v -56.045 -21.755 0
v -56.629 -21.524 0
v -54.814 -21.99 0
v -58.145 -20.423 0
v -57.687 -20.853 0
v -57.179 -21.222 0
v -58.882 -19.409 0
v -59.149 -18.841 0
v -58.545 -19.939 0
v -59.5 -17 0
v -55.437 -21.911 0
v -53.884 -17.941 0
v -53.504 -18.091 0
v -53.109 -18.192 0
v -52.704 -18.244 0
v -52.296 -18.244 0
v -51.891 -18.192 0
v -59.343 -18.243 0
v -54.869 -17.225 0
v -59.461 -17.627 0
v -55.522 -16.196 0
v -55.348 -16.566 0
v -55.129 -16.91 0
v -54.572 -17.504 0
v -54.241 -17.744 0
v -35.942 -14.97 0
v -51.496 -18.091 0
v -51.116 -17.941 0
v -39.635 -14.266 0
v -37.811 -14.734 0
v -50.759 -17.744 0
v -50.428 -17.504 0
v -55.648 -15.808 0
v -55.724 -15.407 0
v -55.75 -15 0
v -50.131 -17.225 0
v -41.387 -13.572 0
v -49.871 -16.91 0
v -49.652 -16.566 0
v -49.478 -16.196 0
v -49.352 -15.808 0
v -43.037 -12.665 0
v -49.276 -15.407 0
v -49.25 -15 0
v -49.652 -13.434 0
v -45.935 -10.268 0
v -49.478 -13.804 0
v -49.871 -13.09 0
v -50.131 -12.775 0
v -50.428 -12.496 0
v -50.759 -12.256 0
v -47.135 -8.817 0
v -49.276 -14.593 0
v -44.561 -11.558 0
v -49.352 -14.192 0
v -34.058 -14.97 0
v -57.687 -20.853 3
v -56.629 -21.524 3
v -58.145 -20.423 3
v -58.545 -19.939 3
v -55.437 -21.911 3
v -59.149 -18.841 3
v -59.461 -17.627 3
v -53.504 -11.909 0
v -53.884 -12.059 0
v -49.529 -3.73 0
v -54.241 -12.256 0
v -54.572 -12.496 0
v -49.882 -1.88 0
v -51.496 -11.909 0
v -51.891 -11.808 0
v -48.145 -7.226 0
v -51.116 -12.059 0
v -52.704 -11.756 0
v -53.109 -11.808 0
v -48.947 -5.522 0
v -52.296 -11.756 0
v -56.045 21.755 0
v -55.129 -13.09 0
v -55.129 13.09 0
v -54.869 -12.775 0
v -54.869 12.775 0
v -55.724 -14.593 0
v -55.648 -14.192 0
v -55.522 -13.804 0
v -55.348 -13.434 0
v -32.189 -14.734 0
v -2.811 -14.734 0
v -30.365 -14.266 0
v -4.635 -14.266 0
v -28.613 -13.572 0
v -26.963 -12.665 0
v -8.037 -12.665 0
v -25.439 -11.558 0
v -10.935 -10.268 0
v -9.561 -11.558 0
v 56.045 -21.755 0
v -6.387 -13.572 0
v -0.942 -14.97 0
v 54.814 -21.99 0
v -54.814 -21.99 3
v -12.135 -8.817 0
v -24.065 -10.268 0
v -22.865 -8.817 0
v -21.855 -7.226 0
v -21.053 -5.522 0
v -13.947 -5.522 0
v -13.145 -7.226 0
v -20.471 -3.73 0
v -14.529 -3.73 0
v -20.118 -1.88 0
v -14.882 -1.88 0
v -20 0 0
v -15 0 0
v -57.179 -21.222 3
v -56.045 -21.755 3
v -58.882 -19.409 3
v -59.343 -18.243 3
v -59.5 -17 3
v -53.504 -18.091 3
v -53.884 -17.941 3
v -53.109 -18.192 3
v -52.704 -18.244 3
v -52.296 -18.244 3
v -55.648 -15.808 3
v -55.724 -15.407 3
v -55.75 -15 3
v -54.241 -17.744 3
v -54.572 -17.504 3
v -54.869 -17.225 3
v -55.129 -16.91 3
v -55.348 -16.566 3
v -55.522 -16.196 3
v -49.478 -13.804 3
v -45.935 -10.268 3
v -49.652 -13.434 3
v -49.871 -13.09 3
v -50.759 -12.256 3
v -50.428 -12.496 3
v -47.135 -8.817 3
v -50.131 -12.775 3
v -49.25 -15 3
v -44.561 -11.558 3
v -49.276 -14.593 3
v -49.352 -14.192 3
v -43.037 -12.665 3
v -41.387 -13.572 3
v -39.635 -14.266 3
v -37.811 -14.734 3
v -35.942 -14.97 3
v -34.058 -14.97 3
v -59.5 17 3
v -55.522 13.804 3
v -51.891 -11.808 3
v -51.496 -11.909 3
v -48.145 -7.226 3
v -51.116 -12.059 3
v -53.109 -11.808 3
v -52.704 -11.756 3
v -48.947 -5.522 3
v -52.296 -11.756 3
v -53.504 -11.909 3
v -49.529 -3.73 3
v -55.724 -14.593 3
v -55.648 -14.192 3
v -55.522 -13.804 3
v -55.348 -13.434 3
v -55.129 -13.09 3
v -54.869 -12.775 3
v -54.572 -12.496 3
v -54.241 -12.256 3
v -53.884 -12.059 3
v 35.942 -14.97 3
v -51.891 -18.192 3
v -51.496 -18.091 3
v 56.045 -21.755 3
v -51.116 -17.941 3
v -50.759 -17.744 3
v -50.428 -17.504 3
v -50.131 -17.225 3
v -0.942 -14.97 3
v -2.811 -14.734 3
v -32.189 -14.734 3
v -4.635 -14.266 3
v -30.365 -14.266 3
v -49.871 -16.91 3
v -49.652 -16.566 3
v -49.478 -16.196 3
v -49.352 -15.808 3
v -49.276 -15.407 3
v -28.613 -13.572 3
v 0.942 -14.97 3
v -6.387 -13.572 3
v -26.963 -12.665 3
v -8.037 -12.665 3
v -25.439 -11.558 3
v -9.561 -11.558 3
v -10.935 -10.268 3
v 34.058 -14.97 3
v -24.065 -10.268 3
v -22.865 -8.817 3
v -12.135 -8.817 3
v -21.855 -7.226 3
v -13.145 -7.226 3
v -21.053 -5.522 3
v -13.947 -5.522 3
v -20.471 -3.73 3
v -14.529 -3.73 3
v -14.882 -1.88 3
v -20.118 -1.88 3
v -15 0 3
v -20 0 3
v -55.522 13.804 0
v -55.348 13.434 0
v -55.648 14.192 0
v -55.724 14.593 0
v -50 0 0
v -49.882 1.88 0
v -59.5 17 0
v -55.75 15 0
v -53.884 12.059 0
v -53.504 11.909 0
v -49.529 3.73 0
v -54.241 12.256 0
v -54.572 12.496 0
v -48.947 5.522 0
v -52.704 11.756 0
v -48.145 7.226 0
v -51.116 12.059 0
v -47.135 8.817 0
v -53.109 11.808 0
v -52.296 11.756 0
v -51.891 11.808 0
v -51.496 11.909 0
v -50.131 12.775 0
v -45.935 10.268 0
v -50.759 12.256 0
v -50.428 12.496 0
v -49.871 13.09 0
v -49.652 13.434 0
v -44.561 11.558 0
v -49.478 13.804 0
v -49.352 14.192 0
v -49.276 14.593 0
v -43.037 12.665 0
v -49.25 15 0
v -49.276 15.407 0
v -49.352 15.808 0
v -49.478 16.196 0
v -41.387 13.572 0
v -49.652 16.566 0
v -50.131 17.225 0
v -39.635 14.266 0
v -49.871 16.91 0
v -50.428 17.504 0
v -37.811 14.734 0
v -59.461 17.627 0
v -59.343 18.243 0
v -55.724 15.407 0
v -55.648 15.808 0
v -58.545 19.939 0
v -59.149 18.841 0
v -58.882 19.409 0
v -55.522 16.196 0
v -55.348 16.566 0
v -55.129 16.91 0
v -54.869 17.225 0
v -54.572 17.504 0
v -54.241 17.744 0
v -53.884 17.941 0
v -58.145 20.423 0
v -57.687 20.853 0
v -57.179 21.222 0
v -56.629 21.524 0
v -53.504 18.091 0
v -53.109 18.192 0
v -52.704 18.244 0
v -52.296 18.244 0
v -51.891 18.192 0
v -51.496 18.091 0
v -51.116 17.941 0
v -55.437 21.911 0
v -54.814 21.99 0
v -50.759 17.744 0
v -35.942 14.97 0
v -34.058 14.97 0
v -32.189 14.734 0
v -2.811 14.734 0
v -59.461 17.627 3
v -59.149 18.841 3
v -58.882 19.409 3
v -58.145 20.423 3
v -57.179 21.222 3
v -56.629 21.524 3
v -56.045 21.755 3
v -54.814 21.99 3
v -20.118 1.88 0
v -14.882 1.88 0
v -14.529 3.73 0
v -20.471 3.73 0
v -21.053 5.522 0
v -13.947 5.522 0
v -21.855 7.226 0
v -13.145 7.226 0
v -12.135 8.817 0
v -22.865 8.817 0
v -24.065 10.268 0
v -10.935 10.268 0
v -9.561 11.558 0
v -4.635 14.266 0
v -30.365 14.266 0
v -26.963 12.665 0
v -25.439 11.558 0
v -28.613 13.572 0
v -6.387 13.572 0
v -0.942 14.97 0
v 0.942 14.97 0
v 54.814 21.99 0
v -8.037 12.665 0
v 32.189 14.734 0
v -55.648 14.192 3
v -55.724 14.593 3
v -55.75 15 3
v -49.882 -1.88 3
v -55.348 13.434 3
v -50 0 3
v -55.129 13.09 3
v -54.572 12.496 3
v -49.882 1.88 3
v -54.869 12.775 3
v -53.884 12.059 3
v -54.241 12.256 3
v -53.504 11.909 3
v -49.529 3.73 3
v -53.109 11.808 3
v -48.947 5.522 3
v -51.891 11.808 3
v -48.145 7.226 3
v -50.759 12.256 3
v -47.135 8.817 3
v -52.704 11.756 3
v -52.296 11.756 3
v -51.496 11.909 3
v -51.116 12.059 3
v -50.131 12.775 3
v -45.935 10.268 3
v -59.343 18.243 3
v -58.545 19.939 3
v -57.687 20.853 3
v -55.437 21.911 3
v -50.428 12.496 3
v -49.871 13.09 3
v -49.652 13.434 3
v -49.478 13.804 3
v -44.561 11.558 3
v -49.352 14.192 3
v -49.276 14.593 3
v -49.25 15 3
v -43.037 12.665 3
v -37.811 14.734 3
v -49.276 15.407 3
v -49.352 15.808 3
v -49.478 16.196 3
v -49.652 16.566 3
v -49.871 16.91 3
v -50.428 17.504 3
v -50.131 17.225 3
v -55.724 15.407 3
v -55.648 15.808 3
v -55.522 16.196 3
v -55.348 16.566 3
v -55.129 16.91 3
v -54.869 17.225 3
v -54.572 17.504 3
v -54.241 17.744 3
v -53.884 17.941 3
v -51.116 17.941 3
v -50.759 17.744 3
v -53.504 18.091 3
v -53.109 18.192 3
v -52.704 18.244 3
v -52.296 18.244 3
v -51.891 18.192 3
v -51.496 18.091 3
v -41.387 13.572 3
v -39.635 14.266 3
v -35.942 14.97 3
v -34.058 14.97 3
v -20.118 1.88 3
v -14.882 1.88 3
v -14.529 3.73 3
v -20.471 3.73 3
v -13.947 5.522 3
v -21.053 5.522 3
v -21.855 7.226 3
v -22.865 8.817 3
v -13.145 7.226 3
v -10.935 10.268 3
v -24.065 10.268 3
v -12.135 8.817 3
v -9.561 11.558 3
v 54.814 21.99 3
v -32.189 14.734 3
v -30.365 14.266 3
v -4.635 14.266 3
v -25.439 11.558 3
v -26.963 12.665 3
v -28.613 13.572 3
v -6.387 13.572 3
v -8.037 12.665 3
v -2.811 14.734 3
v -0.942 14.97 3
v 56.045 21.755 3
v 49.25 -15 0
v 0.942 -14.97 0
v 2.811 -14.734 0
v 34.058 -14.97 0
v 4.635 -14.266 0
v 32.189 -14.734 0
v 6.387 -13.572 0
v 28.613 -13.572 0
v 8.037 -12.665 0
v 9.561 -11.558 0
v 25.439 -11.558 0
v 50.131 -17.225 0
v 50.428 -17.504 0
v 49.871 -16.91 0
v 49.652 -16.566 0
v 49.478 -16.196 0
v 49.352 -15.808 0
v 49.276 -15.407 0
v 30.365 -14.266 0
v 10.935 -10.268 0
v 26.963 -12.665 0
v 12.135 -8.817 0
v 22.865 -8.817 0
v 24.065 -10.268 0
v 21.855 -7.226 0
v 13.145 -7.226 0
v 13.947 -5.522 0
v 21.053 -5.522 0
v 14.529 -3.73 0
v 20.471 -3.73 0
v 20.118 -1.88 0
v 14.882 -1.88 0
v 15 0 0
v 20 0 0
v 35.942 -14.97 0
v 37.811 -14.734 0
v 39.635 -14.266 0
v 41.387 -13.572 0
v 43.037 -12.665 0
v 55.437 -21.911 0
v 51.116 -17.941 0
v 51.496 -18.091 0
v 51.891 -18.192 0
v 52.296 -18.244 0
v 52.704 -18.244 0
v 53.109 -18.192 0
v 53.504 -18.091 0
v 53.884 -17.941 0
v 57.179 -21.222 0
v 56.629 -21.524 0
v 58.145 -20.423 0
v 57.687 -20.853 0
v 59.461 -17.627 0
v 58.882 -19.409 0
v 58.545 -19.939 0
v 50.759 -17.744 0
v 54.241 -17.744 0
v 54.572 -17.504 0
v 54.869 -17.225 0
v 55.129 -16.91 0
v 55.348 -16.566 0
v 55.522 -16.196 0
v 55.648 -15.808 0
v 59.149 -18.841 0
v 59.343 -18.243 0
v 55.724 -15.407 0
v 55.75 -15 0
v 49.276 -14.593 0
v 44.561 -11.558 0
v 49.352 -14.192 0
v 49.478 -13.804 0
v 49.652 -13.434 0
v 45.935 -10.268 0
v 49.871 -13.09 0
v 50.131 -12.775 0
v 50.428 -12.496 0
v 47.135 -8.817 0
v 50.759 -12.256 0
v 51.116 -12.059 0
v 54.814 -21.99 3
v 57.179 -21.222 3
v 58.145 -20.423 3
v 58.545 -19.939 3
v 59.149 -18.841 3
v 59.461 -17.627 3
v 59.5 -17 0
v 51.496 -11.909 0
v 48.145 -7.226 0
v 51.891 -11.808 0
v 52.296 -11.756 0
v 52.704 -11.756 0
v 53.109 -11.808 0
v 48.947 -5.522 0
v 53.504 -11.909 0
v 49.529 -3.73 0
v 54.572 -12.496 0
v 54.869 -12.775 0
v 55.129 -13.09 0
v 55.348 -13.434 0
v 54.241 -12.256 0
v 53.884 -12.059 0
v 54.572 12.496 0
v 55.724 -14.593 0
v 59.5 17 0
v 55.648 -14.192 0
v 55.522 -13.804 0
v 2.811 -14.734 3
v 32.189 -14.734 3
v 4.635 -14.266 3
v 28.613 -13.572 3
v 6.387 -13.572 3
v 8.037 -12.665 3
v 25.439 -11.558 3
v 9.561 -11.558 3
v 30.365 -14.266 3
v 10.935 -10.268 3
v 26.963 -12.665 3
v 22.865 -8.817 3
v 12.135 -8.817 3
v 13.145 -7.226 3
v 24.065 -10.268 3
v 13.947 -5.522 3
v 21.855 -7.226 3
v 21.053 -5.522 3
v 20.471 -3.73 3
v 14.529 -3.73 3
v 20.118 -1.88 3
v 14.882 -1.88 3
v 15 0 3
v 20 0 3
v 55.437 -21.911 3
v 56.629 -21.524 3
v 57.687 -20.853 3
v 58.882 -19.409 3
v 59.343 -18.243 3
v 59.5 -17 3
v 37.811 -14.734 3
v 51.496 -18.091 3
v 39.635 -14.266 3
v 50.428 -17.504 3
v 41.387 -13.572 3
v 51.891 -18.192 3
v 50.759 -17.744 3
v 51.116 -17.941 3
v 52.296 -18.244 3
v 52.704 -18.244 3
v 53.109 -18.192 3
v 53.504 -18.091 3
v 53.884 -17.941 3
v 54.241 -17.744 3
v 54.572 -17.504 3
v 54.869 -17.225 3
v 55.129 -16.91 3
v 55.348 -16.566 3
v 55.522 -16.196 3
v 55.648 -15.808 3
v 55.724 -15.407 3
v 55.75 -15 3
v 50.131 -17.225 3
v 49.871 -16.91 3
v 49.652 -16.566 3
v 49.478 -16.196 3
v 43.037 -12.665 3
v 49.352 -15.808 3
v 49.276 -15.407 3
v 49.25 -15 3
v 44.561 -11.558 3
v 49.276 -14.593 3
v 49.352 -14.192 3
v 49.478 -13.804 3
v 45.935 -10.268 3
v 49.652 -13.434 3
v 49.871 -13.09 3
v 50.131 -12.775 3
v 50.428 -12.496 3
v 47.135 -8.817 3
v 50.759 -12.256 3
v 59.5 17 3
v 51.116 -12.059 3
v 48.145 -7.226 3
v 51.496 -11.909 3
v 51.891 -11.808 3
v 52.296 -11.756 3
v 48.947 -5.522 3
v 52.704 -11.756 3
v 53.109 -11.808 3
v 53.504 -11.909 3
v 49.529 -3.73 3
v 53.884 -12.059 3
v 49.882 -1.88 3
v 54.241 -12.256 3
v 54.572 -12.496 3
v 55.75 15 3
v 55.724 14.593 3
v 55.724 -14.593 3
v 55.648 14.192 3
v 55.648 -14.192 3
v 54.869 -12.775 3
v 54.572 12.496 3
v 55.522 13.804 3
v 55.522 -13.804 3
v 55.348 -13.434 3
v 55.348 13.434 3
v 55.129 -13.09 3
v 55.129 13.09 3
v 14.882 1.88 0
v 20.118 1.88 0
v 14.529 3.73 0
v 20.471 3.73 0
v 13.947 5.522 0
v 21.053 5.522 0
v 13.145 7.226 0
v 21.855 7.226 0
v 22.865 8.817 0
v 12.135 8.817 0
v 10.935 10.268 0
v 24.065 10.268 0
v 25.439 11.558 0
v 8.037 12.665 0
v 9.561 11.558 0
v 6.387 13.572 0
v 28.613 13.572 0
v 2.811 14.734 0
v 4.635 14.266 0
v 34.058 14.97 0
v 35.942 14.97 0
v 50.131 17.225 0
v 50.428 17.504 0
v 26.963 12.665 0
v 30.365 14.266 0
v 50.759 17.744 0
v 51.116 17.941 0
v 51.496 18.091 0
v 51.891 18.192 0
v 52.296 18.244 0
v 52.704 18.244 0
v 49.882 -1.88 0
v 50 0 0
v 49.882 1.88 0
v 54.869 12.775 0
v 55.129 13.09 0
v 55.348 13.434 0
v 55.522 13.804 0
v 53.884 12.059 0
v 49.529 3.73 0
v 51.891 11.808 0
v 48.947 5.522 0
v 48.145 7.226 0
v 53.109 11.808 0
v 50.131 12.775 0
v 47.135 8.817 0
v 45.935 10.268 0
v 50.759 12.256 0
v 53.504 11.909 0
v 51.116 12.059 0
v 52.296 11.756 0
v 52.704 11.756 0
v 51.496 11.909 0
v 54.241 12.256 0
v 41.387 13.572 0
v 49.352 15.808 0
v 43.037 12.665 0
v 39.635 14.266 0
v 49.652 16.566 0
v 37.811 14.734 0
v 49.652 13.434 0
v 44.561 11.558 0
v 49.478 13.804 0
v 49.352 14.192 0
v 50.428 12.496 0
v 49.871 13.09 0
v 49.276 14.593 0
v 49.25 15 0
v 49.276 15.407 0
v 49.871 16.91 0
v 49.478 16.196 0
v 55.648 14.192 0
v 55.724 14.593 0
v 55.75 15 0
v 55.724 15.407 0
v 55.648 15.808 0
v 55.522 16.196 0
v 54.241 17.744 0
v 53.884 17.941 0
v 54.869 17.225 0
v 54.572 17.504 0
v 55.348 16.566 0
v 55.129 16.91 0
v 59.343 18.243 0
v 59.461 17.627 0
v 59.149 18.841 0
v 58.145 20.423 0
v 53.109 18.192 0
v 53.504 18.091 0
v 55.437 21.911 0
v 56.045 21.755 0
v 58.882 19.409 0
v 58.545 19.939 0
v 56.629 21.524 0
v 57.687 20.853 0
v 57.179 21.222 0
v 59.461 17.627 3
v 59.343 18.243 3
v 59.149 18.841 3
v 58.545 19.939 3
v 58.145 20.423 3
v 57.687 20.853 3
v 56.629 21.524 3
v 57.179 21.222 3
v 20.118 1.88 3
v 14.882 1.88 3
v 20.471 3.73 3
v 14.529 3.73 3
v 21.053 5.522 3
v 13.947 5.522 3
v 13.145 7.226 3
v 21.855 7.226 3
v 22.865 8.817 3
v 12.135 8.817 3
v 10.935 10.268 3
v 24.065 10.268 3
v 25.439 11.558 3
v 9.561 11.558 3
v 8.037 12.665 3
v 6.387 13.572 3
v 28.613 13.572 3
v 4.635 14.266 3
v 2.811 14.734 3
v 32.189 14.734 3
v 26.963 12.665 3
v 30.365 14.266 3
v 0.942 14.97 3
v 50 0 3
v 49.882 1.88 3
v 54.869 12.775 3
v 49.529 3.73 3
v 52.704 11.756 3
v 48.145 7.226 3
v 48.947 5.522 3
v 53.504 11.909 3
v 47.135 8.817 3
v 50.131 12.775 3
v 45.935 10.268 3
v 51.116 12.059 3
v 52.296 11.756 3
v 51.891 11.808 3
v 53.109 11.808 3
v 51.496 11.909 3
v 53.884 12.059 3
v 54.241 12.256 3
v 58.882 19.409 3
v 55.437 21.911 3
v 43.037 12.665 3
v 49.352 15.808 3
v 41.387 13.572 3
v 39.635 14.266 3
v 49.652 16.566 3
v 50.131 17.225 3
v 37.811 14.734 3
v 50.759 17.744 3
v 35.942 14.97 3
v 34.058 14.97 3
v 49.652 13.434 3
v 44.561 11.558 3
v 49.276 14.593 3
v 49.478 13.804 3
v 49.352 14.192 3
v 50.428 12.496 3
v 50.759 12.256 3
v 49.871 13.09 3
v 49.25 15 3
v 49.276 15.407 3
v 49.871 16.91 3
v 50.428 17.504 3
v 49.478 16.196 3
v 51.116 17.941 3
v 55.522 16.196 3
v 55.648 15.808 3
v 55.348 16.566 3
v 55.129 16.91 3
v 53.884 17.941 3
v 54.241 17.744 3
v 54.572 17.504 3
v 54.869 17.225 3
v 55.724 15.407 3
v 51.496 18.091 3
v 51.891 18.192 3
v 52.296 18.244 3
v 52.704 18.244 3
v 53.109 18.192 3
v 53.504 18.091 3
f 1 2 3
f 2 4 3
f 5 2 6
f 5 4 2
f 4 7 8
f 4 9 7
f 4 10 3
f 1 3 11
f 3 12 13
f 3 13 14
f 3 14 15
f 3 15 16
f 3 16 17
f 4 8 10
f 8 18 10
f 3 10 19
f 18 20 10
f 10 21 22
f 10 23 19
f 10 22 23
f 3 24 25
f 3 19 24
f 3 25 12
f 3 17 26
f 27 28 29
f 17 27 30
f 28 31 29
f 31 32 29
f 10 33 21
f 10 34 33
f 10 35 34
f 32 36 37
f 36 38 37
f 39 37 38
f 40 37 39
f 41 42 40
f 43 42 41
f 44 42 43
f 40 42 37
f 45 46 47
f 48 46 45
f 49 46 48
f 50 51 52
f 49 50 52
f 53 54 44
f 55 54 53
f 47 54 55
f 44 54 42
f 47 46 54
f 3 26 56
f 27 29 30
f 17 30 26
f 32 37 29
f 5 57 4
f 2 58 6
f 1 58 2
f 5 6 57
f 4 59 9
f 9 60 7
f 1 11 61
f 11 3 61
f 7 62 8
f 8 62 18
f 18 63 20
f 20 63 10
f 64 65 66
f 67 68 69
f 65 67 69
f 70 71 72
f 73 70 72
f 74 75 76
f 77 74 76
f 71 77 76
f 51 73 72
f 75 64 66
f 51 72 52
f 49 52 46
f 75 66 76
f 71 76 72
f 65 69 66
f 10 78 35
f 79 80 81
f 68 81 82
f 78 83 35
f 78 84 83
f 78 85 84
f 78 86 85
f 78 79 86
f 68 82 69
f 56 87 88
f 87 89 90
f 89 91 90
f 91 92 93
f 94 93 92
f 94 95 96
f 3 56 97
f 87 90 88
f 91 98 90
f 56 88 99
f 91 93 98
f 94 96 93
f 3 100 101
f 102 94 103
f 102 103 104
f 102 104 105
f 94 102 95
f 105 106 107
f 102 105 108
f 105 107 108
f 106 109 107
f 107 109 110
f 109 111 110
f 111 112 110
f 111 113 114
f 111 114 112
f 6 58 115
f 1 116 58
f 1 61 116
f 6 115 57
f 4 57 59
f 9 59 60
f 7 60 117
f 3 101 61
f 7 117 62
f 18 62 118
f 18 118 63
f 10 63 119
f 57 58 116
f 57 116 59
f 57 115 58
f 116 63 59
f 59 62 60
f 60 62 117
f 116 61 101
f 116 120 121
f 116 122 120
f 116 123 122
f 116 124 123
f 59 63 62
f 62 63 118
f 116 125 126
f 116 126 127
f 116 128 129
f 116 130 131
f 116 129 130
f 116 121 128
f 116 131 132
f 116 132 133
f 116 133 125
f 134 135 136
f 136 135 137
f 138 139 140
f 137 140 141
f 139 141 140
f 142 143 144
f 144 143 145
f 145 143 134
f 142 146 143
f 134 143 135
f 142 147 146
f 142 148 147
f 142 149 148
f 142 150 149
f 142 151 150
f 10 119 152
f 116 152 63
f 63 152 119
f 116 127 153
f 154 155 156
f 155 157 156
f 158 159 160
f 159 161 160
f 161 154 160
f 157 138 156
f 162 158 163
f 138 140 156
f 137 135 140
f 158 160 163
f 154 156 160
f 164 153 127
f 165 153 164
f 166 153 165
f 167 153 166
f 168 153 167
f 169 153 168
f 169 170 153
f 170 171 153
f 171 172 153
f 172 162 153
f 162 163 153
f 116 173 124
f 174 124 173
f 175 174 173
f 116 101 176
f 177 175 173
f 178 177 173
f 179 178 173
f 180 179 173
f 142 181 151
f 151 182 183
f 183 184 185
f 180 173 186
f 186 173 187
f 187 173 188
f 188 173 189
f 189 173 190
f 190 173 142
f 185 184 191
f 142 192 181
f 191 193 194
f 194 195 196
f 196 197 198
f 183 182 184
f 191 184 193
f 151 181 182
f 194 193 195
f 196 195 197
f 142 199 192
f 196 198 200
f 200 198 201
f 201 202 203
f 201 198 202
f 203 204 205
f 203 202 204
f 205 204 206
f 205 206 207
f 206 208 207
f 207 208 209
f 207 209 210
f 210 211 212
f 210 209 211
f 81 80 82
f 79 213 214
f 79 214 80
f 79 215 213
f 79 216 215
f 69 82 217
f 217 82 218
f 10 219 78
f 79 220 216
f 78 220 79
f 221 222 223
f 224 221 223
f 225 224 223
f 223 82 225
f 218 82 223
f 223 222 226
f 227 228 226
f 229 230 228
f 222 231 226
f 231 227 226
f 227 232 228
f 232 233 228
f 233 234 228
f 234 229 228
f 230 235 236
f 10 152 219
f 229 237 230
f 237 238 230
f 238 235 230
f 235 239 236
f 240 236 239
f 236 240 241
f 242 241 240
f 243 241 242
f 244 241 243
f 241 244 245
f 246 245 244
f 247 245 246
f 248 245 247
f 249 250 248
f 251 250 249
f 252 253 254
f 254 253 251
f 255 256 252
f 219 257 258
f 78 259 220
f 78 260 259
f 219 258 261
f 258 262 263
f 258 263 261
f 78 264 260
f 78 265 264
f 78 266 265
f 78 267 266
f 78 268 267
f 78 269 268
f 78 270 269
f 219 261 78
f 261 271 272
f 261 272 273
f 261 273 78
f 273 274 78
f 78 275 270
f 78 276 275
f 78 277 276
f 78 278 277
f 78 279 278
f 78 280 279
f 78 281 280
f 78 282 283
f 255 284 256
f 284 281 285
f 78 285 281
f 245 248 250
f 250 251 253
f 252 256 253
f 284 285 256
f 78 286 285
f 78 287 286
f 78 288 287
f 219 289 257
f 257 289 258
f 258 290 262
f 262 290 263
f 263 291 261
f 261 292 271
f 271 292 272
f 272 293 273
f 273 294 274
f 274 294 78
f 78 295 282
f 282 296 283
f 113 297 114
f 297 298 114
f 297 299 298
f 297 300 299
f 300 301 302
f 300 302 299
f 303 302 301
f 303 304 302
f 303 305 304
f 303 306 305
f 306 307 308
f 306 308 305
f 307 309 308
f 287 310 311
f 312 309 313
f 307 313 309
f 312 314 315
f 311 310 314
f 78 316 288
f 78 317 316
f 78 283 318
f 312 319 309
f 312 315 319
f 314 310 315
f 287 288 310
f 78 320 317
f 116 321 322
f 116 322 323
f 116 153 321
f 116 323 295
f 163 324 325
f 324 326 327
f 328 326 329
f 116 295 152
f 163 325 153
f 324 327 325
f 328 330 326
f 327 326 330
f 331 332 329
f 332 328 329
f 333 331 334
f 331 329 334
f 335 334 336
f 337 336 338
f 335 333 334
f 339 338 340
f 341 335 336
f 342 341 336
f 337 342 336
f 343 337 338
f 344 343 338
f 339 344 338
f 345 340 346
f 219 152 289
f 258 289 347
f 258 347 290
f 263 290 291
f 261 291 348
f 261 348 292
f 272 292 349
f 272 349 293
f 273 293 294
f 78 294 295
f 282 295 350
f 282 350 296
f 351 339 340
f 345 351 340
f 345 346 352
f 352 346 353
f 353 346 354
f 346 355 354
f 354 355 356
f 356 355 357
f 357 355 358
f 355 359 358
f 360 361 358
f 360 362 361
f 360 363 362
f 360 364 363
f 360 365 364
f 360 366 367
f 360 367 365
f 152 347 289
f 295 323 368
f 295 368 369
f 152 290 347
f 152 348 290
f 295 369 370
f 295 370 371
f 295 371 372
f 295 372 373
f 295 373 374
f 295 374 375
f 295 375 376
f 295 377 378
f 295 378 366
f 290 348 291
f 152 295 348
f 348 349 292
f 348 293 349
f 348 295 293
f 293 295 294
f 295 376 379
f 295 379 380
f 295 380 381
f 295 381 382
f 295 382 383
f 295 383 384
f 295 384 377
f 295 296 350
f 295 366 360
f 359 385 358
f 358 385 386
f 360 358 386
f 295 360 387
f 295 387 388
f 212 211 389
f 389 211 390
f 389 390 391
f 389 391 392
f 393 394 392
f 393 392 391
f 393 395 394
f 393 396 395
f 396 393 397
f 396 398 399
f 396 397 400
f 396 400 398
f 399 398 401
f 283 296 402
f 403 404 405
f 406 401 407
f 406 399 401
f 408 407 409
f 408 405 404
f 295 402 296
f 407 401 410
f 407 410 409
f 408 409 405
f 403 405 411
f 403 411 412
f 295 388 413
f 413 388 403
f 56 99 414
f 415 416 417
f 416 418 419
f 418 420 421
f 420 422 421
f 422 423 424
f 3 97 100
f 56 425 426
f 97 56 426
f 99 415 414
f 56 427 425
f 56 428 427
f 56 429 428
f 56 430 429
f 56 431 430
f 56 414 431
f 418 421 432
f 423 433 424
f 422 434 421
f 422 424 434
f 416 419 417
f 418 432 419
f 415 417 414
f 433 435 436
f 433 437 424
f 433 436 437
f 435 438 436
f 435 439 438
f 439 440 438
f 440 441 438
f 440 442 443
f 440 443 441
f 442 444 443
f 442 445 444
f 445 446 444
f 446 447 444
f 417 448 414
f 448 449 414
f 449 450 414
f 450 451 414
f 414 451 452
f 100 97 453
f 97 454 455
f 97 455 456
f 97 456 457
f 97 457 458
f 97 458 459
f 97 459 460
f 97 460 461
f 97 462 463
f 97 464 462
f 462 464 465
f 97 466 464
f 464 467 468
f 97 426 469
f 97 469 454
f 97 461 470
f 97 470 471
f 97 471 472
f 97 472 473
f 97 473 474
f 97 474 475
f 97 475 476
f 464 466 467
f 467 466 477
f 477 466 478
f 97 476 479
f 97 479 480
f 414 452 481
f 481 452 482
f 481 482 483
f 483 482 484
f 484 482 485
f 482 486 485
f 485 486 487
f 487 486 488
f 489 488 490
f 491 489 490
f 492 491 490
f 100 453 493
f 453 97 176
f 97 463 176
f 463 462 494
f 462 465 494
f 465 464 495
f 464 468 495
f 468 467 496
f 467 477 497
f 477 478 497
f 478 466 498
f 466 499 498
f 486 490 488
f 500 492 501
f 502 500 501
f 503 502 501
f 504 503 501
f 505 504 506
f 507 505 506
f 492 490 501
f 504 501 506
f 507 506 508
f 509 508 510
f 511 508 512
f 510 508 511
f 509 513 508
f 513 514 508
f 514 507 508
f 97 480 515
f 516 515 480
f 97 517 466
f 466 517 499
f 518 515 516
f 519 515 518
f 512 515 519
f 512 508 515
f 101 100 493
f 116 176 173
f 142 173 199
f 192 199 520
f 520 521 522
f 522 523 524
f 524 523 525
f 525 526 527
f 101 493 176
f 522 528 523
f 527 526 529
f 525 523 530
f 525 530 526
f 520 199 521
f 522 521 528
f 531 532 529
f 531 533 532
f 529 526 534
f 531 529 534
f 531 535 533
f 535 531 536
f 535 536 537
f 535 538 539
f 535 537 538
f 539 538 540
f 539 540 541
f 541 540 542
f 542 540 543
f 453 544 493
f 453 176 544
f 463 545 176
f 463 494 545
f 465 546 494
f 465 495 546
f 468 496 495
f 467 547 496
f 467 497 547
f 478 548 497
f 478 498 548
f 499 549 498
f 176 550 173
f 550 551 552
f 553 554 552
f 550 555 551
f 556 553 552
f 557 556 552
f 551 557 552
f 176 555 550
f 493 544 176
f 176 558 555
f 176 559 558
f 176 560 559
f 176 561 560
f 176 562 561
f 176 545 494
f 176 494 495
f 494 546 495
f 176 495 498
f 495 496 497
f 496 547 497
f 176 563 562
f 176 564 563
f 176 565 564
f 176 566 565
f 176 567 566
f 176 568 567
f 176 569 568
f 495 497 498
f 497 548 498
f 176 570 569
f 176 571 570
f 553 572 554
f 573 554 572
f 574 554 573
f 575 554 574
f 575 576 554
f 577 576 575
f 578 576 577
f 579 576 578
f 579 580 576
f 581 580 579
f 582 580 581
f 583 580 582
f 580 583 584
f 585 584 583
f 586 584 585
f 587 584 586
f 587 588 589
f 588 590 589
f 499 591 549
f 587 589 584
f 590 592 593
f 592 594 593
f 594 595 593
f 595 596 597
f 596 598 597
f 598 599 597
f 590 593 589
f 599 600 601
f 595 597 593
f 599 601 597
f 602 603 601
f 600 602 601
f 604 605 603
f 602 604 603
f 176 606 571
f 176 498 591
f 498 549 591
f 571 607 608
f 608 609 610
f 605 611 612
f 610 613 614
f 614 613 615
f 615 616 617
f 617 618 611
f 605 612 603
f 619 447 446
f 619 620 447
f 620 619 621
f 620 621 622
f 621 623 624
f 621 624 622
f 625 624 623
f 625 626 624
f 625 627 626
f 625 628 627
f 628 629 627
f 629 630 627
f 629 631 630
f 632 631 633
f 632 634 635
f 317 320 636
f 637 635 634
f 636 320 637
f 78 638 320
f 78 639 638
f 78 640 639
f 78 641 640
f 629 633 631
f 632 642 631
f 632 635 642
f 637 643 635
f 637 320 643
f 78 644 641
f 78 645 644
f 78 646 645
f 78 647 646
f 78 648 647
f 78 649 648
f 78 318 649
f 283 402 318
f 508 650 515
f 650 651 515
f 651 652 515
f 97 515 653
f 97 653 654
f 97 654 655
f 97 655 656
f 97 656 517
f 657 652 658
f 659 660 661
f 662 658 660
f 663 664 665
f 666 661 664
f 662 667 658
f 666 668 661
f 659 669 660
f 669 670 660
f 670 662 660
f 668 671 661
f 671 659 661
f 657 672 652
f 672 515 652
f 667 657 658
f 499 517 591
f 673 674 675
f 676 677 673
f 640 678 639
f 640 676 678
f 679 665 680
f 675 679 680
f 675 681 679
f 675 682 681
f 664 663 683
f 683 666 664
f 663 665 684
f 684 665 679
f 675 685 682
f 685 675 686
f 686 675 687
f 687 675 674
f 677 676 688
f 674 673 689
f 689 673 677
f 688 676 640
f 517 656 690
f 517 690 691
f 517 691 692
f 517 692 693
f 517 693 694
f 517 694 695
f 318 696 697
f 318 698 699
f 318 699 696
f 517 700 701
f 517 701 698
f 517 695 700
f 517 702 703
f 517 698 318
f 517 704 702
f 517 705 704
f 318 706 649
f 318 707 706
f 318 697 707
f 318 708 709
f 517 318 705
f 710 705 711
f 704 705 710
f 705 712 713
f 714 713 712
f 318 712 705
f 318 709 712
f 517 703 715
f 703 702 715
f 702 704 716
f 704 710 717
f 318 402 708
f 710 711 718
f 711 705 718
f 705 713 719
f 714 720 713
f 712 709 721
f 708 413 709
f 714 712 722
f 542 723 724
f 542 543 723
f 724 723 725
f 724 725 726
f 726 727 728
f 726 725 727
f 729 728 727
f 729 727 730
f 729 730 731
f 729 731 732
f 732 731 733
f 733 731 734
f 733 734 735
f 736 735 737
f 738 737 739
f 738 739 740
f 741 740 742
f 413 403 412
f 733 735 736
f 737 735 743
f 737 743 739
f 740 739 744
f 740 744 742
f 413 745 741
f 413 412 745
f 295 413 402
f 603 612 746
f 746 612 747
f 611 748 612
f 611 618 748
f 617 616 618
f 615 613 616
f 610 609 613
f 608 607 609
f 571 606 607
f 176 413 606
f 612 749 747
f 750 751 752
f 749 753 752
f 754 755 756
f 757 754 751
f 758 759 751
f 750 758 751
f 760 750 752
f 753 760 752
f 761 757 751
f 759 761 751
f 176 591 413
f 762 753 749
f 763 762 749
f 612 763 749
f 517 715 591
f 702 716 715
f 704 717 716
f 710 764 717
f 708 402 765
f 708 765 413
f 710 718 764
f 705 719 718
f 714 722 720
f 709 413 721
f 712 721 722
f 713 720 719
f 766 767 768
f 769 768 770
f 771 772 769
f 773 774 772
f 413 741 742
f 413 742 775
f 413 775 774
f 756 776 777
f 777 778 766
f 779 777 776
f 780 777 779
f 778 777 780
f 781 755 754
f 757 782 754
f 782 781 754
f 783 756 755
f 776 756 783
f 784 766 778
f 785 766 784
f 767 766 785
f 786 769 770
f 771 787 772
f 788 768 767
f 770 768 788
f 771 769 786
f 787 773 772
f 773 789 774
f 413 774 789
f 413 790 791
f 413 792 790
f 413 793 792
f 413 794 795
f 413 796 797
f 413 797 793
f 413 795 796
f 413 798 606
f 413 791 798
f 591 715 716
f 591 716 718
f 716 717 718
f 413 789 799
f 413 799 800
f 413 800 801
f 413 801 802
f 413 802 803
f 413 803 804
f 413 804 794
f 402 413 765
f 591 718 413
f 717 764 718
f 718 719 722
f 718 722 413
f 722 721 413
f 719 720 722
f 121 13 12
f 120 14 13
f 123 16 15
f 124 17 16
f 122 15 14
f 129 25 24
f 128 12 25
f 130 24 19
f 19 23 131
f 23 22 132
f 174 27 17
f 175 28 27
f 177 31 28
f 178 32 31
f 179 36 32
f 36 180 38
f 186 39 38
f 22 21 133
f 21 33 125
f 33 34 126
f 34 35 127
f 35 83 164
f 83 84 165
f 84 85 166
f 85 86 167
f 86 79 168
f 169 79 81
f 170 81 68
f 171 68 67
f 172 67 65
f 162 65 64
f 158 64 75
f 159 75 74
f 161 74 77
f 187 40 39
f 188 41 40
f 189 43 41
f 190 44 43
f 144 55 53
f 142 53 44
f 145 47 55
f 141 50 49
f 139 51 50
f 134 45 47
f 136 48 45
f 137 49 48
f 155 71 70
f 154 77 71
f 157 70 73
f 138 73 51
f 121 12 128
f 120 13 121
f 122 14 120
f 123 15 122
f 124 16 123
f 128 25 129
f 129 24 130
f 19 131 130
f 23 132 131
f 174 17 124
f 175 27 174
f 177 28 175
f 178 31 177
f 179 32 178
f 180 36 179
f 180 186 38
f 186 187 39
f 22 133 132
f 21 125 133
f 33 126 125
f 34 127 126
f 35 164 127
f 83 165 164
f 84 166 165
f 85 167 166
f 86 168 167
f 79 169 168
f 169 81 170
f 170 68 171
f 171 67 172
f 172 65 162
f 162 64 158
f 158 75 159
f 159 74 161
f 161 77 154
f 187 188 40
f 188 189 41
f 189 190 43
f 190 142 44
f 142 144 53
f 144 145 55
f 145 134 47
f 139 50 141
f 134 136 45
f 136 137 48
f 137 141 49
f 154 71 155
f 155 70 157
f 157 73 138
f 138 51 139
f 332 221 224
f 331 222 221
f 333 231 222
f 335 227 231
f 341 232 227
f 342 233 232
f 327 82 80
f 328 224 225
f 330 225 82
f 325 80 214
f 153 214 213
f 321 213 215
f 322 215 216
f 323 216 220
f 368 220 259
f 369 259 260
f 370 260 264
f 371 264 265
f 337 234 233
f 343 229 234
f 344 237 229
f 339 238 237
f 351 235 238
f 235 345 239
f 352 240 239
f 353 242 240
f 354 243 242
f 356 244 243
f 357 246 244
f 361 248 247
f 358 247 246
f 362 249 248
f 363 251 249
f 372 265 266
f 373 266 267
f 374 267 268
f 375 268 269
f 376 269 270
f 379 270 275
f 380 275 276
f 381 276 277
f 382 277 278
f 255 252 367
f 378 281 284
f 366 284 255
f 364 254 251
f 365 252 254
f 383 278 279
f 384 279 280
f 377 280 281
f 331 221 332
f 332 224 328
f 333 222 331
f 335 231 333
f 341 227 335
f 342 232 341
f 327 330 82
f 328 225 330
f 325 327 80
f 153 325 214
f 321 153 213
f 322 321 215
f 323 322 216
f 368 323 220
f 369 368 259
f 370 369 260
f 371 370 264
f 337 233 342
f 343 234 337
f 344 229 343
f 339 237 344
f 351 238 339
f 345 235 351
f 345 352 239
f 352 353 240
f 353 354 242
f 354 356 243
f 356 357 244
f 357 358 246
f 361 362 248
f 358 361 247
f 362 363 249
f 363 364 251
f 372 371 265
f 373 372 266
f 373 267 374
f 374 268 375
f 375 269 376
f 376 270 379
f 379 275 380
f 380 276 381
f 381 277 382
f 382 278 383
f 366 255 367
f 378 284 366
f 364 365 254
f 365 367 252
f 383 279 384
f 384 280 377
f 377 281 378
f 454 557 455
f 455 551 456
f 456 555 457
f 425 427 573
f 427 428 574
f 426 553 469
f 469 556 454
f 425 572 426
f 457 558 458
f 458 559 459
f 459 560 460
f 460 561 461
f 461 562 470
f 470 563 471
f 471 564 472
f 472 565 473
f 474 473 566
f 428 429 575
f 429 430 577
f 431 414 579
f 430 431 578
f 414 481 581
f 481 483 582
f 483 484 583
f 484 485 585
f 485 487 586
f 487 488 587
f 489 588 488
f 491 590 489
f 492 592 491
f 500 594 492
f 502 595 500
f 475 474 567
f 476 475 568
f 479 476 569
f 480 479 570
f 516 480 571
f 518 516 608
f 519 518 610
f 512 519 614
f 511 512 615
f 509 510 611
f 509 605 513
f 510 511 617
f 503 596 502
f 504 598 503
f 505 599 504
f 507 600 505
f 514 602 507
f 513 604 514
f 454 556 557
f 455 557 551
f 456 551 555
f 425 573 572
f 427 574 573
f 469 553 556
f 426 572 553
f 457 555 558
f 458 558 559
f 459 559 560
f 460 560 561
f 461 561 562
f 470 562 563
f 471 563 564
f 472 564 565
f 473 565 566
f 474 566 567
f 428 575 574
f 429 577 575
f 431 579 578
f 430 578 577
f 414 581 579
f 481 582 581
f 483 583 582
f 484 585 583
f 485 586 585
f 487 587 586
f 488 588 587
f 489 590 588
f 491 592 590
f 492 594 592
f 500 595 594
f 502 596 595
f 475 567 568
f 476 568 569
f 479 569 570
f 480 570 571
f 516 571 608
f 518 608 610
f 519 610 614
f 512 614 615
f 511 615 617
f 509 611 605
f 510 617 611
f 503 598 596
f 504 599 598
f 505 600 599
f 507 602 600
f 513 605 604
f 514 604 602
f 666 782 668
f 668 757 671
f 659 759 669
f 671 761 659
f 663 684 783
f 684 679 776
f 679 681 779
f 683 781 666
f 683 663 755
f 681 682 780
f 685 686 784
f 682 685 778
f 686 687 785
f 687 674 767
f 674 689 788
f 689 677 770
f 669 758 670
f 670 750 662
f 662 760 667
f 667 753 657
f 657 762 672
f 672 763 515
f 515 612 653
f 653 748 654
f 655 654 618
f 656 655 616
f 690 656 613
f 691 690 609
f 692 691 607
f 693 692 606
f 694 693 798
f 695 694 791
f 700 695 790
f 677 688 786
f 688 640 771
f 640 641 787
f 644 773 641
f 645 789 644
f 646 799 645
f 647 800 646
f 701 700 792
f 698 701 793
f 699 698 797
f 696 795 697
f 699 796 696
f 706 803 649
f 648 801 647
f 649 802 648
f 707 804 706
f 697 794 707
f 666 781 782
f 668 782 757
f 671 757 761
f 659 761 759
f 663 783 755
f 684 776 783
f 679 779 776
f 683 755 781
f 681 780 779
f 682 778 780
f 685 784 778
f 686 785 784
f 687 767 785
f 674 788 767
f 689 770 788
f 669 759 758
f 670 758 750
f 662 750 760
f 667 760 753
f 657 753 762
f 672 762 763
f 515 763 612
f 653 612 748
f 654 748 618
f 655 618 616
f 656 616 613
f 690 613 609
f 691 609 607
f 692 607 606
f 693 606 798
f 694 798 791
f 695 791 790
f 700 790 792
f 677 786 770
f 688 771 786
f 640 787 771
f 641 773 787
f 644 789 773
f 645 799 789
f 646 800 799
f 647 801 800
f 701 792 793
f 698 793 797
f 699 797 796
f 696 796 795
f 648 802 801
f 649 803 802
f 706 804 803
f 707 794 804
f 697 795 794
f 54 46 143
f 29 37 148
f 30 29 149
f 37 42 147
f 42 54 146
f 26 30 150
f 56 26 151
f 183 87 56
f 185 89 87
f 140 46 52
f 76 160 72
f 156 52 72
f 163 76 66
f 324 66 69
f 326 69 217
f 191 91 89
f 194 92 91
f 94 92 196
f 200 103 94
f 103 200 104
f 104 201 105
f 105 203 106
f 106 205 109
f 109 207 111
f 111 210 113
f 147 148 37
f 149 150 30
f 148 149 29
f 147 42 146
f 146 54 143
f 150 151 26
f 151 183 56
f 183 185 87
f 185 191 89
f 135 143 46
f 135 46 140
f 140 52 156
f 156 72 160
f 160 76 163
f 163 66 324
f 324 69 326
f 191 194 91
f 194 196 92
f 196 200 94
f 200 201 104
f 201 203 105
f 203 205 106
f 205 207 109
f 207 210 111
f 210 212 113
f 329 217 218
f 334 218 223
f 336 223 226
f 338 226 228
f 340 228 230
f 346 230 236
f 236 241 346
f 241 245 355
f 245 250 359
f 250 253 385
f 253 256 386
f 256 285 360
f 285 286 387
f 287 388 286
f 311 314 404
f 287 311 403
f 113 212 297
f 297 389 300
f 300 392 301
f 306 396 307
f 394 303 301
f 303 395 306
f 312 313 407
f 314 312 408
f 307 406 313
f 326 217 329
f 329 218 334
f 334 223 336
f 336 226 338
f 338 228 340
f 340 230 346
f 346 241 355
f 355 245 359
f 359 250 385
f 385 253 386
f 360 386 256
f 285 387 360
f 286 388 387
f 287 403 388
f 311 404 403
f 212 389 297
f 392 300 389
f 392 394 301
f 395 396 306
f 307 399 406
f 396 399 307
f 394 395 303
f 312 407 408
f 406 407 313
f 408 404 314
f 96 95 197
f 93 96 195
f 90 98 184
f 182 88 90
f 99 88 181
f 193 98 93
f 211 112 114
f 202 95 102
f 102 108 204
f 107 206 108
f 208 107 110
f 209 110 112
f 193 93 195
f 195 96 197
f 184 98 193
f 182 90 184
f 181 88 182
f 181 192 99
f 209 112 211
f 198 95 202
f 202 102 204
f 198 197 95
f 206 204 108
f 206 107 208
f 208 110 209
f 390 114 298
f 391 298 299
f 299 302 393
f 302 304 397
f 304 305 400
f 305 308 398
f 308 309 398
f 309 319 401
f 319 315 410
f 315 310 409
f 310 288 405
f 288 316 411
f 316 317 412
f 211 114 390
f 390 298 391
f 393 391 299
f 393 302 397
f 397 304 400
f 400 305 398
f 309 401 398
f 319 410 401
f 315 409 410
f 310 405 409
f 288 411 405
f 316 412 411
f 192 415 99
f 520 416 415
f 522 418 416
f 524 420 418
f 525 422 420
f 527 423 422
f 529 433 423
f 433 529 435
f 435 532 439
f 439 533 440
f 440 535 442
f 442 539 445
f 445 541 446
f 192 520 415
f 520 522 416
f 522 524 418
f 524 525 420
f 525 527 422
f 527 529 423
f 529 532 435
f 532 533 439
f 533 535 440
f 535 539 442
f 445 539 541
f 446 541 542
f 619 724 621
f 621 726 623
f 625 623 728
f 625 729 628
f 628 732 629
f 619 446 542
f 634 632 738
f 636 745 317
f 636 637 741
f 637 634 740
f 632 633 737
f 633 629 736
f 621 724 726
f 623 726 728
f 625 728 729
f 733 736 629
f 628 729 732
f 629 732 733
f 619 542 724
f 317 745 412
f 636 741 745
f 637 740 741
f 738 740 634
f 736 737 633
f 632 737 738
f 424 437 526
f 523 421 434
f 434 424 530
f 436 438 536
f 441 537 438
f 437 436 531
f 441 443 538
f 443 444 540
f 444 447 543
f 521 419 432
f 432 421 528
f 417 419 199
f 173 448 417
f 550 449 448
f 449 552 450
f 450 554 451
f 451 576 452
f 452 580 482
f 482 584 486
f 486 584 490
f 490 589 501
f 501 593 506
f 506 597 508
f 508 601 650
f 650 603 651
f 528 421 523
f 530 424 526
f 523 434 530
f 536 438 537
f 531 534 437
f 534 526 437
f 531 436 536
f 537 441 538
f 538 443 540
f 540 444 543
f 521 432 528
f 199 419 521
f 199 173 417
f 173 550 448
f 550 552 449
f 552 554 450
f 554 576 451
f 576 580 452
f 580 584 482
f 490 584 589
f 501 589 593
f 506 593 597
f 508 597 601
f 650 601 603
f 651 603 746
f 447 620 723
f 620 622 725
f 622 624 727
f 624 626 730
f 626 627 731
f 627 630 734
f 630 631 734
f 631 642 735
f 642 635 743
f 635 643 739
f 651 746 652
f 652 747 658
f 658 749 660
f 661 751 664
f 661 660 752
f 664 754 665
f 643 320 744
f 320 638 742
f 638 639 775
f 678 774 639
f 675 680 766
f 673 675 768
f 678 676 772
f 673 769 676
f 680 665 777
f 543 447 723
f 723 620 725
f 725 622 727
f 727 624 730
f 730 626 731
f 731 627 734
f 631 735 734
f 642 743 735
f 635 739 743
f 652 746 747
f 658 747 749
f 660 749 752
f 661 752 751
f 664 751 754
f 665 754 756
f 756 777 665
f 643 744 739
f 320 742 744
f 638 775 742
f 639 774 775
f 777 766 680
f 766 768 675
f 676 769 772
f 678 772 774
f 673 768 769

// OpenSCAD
$fn = 50;

difference() {
	union() {
		hull() {
			translate(v = [-54.5, 17.0, 0]) {
				cylinder(h = 3, r = 5);
			}
			translate(v = [54.5, 17.0, 0]) {
				cylinder(h = 3, r = 5);
			}
			translate(v = [-54.5, -17.0, 0]) {
				cylinder(h = 3, r = 5);
			}
			translate(v = [54.5, -17.0, 0]) {
				cylinder(h = 3, r = 5);
			}
		}
	}
	union() {
		translate(v = [-52.5, -15.0, -100.0]) {
			cylinder(h = 200, r = 3.25);
		}
		translate(v = [-52.5, 15.0, -100.0]) {
			cylinder(h = 200, r = 3.25);
		}
		translate(v = [52.5, -15.0, -100.0]) {
			cylinder(h = 200, r = 3.25);
		}
		translate(v = [52.5, 15.0, -100.0]) {
			cylinder(h = 200, r = 3.25);
		}
		translate(v = [-52.5, -15.0, -100.0]) {
			cylinder(h = 200, r = 1.8);
		}
		translate(v = [-52.5, 15.0, -100.0]) {
			cylinder(h = 200, r = 1.8);
		}
		translate(v = [52.5, -15.0, -100.0]) {
			cylinder(h = 200, r = 1.8);
		}
		translate(v = [52.5, 15.0, -100.0]) {
			cylinder(h = 200, r = 1.8);
		}
		translate(v = [-35.0, 0, 0.0]) {
			cylinder(h = 3, r = 15.0);
		}
		cylinder(h = 3, r = 15.0);
		translate(v = [35.0, 0, 0.0]) {
			cylinder(h = 3, r = 15.0);
		}
	}
}
